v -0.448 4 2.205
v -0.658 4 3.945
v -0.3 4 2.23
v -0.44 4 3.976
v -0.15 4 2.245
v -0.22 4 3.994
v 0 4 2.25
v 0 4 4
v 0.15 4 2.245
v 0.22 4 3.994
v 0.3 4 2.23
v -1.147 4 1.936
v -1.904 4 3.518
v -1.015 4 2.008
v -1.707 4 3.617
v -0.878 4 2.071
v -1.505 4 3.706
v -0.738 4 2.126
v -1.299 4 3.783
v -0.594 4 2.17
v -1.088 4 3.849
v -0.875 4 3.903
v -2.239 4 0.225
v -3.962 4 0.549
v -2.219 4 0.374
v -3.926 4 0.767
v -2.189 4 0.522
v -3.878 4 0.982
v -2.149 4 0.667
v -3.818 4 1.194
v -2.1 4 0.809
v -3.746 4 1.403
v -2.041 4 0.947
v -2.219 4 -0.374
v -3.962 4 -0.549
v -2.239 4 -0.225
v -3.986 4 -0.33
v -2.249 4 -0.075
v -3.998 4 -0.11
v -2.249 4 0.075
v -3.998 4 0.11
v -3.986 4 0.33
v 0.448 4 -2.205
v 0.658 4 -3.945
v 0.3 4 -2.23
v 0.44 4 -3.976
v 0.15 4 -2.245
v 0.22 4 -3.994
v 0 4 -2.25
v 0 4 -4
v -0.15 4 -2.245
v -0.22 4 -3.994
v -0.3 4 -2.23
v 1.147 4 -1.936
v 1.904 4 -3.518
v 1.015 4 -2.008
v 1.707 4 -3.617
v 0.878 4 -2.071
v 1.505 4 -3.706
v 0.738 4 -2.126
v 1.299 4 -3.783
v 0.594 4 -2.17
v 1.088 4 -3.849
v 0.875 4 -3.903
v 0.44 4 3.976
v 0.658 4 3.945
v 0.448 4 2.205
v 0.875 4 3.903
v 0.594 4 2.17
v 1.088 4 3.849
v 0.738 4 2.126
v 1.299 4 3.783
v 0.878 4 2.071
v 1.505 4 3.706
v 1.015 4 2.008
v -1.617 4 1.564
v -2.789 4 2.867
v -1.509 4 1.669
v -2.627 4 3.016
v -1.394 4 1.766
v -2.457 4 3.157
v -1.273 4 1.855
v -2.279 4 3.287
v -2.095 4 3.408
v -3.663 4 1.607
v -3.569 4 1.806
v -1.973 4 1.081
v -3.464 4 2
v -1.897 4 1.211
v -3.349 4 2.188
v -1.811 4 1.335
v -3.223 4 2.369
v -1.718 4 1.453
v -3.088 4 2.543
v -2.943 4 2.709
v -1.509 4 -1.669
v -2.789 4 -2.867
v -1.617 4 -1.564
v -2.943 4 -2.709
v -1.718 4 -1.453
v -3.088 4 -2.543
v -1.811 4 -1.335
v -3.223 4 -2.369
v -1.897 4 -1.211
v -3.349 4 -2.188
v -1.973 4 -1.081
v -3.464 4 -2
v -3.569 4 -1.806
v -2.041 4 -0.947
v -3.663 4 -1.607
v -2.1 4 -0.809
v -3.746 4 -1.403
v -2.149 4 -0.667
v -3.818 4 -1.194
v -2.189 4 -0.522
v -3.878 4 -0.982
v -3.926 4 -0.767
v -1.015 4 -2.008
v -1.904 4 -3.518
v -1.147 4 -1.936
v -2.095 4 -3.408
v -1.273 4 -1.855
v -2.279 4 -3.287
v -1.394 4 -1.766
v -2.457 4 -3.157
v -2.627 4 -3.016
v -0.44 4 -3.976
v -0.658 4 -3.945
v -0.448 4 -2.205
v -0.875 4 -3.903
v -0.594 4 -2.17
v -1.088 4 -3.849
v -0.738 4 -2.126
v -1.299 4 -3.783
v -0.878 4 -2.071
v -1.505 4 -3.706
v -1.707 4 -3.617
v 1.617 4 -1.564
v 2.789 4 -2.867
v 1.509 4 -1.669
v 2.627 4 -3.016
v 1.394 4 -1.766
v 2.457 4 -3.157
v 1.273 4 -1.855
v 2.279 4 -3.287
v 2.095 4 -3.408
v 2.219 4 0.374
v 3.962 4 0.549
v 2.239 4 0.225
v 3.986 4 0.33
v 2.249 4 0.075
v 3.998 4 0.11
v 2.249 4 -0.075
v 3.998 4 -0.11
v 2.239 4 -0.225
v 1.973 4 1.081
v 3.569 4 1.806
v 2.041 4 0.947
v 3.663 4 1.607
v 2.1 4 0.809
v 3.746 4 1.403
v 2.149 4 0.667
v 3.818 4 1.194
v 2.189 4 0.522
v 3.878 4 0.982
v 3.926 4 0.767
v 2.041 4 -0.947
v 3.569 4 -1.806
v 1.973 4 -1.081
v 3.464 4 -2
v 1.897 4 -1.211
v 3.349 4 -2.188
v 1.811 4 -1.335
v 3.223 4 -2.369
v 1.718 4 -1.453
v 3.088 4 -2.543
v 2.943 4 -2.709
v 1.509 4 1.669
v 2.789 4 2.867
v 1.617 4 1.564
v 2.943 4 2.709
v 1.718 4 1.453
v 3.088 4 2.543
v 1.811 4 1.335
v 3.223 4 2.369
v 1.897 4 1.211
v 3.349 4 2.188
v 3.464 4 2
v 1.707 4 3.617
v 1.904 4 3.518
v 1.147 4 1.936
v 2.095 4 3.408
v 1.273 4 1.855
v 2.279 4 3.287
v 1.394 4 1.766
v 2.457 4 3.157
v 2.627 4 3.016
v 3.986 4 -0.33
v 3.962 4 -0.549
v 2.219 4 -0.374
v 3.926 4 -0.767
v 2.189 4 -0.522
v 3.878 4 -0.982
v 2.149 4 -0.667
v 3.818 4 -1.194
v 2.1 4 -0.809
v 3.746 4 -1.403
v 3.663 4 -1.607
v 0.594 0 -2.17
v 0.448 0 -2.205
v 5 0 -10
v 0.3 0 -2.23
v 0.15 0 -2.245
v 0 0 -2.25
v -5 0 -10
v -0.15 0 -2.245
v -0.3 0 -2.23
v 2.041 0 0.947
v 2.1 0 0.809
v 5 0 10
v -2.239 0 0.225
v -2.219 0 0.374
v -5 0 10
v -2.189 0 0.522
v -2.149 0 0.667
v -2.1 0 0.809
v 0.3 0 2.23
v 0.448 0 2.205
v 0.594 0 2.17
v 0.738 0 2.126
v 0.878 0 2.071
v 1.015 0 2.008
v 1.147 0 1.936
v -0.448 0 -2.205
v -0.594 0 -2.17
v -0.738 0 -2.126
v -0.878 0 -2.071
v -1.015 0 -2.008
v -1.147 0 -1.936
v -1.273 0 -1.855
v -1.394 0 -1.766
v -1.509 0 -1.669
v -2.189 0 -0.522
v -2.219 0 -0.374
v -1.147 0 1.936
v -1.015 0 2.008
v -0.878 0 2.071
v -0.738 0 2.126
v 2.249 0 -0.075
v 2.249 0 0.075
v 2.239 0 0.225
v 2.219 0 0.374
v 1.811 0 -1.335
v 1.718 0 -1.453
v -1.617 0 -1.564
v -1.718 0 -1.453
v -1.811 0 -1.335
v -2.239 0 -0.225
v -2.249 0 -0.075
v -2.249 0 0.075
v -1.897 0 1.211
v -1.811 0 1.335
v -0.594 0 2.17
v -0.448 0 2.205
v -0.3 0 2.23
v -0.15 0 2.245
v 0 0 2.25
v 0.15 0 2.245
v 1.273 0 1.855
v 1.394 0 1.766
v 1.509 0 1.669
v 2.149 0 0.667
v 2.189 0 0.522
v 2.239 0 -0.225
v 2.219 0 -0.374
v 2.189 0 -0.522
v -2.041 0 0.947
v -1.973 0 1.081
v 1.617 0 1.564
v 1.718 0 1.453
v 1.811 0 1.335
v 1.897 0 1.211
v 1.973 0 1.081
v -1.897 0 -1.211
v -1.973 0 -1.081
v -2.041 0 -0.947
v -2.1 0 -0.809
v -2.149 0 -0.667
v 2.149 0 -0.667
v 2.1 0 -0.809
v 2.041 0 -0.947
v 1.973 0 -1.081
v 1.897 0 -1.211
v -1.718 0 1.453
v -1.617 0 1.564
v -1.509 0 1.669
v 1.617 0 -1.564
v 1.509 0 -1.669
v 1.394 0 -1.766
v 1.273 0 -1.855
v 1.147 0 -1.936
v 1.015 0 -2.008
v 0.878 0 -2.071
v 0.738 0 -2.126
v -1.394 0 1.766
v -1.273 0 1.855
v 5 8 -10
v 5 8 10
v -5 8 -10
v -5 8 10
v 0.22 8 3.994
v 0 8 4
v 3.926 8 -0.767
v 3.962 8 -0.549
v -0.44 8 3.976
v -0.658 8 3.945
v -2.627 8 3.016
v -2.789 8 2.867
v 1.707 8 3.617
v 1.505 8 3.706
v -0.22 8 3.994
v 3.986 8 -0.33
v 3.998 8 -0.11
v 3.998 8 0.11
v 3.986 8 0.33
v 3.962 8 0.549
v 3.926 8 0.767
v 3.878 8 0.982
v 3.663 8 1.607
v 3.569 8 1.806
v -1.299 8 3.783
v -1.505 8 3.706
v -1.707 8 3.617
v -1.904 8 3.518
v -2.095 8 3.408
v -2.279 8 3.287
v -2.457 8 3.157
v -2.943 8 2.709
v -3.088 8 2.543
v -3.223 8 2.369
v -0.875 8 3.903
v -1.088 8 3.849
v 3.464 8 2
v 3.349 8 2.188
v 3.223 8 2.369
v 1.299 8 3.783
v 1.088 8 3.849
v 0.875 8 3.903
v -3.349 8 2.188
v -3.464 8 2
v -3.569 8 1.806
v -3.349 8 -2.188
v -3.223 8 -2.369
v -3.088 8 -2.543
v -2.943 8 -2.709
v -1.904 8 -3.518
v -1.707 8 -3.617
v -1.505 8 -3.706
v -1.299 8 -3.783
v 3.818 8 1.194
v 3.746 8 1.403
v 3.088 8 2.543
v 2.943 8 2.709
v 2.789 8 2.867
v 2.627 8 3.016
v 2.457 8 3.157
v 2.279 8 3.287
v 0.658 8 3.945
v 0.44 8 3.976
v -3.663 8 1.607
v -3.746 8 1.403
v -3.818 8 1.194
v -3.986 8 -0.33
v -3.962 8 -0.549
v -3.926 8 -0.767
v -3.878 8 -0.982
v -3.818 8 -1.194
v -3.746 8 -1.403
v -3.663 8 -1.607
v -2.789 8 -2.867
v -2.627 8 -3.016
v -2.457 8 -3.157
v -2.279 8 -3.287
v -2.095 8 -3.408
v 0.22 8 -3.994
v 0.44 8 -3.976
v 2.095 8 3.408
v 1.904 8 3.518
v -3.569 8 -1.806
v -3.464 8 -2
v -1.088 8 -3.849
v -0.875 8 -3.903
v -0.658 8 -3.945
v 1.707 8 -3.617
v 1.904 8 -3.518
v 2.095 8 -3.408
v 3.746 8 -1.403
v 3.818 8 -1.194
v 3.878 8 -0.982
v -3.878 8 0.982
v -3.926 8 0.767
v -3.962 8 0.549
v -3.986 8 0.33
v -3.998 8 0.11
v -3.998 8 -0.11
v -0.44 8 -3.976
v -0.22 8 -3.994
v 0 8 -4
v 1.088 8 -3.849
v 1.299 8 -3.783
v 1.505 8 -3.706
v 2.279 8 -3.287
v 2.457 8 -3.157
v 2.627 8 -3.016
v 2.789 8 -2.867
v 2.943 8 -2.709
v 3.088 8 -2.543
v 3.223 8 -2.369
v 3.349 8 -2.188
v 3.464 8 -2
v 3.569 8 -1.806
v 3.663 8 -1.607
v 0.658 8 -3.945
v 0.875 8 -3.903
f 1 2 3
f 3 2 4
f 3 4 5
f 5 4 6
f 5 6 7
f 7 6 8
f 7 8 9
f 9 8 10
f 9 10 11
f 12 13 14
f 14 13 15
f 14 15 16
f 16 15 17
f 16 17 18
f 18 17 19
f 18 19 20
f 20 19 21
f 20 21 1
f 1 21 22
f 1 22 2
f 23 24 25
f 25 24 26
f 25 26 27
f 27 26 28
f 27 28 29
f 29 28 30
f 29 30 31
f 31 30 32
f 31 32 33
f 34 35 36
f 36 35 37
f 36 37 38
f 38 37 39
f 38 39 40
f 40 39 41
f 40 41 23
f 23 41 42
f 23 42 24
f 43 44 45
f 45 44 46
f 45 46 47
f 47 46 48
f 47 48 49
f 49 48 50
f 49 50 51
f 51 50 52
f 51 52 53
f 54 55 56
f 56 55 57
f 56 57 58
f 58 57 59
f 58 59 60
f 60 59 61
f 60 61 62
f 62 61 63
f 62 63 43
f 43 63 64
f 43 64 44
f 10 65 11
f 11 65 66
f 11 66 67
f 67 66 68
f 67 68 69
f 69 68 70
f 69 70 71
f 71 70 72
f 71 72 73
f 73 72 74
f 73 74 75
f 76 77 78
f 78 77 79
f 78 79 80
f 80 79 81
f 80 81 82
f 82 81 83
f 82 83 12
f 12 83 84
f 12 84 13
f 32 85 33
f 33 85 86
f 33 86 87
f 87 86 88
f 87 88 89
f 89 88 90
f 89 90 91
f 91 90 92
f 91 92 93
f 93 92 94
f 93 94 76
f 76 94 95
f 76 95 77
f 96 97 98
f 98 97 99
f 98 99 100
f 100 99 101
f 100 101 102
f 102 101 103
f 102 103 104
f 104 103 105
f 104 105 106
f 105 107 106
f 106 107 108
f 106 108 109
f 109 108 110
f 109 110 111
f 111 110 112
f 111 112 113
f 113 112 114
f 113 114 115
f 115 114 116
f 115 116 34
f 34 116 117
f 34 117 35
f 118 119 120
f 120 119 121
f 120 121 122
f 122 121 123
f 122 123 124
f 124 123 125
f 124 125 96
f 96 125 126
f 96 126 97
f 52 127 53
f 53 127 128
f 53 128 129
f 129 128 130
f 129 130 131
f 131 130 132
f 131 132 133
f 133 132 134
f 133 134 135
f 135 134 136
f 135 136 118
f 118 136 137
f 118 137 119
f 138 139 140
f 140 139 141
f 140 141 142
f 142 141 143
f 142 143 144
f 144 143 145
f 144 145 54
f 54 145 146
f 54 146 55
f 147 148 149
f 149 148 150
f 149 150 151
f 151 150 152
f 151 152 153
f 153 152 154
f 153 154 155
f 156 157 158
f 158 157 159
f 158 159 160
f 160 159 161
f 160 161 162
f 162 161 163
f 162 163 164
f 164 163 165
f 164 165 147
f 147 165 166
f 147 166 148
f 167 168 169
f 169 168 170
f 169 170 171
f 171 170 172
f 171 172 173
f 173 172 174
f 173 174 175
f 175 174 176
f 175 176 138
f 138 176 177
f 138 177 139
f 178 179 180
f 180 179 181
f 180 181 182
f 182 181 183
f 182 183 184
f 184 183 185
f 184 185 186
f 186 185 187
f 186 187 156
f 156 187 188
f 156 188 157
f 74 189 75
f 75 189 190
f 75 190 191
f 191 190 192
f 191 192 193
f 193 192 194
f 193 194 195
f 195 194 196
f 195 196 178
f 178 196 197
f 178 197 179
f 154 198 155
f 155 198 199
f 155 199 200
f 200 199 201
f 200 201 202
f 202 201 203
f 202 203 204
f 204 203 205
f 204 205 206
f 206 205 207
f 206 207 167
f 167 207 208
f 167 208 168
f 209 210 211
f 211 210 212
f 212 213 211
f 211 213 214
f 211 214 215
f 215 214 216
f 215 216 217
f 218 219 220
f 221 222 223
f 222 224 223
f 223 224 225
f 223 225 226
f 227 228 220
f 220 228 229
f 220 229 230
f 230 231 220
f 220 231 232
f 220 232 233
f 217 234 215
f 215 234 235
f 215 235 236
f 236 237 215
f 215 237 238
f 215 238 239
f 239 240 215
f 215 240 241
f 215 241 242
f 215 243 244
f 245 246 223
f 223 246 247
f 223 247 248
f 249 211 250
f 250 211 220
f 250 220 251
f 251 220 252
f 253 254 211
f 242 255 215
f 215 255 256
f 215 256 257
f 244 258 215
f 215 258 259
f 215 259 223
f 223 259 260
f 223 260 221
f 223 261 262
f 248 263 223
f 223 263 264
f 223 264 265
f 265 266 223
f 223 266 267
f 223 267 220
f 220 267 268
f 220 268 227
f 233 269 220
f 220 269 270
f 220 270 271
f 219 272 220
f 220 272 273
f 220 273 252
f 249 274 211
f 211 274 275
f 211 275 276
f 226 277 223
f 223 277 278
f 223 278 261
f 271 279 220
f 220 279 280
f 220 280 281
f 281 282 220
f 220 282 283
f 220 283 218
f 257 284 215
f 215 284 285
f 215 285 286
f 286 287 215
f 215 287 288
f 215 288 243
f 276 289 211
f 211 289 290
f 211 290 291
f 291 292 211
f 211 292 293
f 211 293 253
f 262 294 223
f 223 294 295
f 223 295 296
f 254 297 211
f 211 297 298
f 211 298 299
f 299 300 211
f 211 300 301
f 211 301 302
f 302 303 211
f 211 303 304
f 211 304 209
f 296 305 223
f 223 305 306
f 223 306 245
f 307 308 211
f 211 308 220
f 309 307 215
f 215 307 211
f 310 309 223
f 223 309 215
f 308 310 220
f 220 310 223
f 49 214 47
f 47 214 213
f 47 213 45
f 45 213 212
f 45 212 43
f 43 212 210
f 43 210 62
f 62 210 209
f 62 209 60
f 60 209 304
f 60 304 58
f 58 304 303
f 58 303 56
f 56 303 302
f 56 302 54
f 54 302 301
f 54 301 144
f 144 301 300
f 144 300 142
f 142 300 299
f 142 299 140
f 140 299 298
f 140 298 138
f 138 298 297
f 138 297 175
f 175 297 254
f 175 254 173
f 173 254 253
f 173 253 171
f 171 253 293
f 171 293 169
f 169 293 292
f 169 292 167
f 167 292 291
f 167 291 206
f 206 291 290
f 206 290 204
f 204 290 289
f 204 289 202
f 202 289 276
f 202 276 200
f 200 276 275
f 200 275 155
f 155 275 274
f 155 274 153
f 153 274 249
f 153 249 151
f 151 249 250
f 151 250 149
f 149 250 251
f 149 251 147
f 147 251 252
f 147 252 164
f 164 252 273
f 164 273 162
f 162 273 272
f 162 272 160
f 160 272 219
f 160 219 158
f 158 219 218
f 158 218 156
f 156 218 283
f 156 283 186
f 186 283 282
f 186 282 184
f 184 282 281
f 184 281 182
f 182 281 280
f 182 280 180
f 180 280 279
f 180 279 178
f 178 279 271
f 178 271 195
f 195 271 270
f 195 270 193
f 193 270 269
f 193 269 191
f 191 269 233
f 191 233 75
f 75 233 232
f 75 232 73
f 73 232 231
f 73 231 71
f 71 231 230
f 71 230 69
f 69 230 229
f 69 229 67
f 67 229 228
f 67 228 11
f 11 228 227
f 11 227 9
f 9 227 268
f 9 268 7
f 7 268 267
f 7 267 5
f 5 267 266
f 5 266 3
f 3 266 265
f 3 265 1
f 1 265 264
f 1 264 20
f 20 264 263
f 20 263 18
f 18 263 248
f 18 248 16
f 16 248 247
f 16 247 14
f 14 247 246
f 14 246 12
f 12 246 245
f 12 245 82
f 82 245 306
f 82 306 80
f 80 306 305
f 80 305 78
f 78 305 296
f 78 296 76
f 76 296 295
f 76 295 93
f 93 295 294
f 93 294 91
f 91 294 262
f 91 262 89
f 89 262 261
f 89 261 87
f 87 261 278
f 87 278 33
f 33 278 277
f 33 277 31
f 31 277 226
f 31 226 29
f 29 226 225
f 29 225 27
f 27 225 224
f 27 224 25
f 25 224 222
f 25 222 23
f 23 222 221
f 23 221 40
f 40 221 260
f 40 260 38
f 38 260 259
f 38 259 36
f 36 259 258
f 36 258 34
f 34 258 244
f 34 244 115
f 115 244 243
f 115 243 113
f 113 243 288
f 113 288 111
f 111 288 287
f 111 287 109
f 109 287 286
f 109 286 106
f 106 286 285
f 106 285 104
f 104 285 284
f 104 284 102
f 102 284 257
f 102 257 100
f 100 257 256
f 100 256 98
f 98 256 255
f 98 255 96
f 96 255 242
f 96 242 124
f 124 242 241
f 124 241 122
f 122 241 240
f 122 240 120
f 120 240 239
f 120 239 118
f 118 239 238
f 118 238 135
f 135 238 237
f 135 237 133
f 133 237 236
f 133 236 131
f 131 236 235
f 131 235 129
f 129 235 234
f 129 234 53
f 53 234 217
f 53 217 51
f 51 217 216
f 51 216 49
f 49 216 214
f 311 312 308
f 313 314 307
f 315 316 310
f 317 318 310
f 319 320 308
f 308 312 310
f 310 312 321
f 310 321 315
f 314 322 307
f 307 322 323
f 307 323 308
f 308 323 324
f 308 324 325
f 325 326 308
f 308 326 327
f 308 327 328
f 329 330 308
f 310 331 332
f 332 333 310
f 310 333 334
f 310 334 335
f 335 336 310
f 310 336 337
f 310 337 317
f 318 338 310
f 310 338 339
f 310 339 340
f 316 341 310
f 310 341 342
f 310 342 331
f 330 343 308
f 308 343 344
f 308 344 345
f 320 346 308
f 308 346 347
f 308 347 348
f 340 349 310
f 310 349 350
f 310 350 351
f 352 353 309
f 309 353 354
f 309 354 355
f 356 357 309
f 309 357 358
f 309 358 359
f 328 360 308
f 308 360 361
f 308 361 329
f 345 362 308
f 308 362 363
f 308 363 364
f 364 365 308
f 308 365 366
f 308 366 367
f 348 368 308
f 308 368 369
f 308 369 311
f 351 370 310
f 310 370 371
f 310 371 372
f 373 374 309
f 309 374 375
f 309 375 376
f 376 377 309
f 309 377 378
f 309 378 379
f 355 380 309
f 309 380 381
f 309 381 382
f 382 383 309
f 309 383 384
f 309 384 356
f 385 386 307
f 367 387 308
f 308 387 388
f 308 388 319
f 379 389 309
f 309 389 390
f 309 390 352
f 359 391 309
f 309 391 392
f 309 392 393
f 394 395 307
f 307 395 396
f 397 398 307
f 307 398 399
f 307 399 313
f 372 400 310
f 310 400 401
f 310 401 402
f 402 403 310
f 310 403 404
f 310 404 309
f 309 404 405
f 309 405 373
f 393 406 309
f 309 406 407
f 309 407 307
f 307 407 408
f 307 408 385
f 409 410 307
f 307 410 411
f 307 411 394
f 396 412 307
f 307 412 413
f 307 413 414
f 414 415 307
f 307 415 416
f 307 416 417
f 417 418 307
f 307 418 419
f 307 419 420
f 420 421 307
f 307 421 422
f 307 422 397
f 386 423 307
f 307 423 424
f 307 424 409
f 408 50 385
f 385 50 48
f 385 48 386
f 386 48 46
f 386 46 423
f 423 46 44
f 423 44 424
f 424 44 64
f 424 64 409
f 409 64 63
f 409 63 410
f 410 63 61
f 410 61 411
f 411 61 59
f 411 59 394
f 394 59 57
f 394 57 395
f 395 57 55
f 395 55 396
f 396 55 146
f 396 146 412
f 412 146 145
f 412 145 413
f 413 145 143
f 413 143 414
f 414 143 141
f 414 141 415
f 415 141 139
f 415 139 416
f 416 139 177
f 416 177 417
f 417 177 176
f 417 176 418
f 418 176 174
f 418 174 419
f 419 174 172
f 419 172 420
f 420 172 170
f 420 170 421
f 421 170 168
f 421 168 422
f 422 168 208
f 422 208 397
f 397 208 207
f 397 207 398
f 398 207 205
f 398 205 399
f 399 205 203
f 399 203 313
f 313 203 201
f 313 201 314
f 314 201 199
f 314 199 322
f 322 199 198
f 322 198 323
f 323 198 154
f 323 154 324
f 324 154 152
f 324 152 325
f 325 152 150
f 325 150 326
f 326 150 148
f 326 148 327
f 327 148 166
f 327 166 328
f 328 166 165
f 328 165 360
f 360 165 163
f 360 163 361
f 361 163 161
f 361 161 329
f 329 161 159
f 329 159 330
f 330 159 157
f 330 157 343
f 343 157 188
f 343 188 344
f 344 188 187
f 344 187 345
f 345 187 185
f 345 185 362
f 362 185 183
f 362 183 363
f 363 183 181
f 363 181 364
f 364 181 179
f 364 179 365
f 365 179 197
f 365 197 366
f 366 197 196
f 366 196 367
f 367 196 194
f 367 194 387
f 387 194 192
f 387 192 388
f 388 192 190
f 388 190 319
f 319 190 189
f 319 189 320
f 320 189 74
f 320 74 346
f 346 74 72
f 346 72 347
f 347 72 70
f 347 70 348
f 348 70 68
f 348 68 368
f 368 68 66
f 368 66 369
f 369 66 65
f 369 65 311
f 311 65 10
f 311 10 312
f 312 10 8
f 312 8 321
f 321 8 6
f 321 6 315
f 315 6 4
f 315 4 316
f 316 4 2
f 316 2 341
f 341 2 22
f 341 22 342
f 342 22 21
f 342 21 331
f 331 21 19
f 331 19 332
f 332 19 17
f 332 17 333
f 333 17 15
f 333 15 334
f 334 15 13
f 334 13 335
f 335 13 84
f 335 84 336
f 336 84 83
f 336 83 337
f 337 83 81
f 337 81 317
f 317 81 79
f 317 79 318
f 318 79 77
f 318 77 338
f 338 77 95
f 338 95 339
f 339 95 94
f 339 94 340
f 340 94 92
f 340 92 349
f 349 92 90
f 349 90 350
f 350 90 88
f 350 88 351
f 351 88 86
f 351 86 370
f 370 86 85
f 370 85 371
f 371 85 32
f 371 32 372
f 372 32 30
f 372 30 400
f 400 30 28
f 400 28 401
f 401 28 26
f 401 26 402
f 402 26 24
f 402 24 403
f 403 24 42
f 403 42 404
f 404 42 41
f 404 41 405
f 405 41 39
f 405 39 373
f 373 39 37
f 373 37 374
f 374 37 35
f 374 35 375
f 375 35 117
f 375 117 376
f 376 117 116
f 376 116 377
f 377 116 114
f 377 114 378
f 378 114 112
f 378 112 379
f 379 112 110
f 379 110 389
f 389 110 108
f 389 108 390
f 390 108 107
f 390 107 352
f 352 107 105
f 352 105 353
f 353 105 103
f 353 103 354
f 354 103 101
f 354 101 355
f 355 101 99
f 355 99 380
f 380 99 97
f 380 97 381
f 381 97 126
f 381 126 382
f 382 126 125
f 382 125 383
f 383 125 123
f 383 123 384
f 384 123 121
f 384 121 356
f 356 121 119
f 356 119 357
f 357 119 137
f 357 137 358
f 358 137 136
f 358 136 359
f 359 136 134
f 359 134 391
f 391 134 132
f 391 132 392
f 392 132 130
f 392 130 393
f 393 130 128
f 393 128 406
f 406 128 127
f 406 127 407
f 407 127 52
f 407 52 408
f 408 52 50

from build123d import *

# Parameters (mm, degrees)
SKETCH1_W           = 10
SKETCH1_H           = 20
SKETCH1_R           = 2.25
BOSS_EXTRUDE1_DEPTH = 4
SKETCH2_W           = 10
SKETCH2_H           = 20
SKETCH2_R           = 4
BOSS_EXTRUDE2_DEPTH = 4


with BuildPart() as part:
    # Sketch1 → Boss-Extrude1 (new body)
    with BuildSketch(Plane(origin=(0, 0, 0), x_dir=(1, 0, 0), z_dir=(0, 1, 0))):
        Rectangle(SKETCH1_W, SKETCH1_H)
        Circle(SKETCH1_R, mode=Mode.SUBTRACT)
    extrude(amount=BOSS_EXTRUDE1_DEPTH)

    # Sketch2 → Boss-Extrude2 (add)
    with BuildSketch(Plane(origin=(0, 4, 0), x_dir=(1, 0, 0), z_dir=(0, 1, 0))):
        Rectangle(SKETCH2_W, SKETCH2_H)
        Circle(SKETCH2_R, mode=Mode.SUBTRACT)
    extrude(amount=BOSS_EXTRUDE2_DEPTH)


solid = part.part
